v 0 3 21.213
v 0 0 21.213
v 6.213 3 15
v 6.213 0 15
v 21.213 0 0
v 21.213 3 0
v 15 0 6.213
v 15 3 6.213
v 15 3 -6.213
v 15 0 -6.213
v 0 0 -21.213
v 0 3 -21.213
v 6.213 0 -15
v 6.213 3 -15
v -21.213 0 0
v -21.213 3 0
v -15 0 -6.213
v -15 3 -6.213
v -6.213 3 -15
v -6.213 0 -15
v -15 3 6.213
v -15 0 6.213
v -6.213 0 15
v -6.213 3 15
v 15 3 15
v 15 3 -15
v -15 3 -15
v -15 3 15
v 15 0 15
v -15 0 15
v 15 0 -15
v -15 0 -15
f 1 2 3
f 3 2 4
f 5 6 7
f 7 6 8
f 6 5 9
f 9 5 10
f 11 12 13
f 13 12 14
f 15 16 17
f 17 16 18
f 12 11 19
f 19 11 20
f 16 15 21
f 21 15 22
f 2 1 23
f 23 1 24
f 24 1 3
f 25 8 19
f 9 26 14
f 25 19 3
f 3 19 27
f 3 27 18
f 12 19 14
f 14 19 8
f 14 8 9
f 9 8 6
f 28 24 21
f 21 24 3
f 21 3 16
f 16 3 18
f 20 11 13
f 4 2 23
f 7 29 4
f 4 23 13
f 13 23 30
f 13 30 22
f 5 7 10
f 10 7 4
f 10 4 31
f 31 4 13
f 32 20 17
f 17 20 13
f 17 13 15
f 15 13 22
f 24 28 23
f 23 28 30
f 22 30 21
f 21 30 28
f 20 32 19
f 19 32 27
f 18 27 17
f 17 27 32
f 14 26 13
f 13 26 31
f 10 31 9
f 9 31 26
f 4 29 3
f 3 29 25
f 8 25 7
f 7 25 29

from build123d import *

# Parameters (mm, degrees)
EXTRUDE_1_DEPTH = 3
SKETCH_2_W      = 30
SKETCH_2_H      = 30
EXTRUDE_2_DEPTH = 3


with BuildPart() as part:
    # 草图1 → 凸台-拉伸1 (new body)
    with BuildSketch(Plane(origin=(0, 0, 0), x_dir=(1, 0, 0), z_dir=(0, 1, 0))):
        Polygon((-21.213203436, 0), (0, -21.213203436), (21.213203436, 0), (0, 21.213203436), align=None)
    extrude(amount=EXTRUDE_1_DEPTH)

    # 草图2 → 凸台-拉伸2 (add)
    with BuildSketch(Plane(origin=(0, 0, 0), x_dir=(1, 0, 0), z_dir=(0, 1, 0))):
        Rectangle(SKETCH_2_W, SKETCH_2_H)
    extrude(amount=EXTRUDE_2_DEPTH)


solid = part.part
